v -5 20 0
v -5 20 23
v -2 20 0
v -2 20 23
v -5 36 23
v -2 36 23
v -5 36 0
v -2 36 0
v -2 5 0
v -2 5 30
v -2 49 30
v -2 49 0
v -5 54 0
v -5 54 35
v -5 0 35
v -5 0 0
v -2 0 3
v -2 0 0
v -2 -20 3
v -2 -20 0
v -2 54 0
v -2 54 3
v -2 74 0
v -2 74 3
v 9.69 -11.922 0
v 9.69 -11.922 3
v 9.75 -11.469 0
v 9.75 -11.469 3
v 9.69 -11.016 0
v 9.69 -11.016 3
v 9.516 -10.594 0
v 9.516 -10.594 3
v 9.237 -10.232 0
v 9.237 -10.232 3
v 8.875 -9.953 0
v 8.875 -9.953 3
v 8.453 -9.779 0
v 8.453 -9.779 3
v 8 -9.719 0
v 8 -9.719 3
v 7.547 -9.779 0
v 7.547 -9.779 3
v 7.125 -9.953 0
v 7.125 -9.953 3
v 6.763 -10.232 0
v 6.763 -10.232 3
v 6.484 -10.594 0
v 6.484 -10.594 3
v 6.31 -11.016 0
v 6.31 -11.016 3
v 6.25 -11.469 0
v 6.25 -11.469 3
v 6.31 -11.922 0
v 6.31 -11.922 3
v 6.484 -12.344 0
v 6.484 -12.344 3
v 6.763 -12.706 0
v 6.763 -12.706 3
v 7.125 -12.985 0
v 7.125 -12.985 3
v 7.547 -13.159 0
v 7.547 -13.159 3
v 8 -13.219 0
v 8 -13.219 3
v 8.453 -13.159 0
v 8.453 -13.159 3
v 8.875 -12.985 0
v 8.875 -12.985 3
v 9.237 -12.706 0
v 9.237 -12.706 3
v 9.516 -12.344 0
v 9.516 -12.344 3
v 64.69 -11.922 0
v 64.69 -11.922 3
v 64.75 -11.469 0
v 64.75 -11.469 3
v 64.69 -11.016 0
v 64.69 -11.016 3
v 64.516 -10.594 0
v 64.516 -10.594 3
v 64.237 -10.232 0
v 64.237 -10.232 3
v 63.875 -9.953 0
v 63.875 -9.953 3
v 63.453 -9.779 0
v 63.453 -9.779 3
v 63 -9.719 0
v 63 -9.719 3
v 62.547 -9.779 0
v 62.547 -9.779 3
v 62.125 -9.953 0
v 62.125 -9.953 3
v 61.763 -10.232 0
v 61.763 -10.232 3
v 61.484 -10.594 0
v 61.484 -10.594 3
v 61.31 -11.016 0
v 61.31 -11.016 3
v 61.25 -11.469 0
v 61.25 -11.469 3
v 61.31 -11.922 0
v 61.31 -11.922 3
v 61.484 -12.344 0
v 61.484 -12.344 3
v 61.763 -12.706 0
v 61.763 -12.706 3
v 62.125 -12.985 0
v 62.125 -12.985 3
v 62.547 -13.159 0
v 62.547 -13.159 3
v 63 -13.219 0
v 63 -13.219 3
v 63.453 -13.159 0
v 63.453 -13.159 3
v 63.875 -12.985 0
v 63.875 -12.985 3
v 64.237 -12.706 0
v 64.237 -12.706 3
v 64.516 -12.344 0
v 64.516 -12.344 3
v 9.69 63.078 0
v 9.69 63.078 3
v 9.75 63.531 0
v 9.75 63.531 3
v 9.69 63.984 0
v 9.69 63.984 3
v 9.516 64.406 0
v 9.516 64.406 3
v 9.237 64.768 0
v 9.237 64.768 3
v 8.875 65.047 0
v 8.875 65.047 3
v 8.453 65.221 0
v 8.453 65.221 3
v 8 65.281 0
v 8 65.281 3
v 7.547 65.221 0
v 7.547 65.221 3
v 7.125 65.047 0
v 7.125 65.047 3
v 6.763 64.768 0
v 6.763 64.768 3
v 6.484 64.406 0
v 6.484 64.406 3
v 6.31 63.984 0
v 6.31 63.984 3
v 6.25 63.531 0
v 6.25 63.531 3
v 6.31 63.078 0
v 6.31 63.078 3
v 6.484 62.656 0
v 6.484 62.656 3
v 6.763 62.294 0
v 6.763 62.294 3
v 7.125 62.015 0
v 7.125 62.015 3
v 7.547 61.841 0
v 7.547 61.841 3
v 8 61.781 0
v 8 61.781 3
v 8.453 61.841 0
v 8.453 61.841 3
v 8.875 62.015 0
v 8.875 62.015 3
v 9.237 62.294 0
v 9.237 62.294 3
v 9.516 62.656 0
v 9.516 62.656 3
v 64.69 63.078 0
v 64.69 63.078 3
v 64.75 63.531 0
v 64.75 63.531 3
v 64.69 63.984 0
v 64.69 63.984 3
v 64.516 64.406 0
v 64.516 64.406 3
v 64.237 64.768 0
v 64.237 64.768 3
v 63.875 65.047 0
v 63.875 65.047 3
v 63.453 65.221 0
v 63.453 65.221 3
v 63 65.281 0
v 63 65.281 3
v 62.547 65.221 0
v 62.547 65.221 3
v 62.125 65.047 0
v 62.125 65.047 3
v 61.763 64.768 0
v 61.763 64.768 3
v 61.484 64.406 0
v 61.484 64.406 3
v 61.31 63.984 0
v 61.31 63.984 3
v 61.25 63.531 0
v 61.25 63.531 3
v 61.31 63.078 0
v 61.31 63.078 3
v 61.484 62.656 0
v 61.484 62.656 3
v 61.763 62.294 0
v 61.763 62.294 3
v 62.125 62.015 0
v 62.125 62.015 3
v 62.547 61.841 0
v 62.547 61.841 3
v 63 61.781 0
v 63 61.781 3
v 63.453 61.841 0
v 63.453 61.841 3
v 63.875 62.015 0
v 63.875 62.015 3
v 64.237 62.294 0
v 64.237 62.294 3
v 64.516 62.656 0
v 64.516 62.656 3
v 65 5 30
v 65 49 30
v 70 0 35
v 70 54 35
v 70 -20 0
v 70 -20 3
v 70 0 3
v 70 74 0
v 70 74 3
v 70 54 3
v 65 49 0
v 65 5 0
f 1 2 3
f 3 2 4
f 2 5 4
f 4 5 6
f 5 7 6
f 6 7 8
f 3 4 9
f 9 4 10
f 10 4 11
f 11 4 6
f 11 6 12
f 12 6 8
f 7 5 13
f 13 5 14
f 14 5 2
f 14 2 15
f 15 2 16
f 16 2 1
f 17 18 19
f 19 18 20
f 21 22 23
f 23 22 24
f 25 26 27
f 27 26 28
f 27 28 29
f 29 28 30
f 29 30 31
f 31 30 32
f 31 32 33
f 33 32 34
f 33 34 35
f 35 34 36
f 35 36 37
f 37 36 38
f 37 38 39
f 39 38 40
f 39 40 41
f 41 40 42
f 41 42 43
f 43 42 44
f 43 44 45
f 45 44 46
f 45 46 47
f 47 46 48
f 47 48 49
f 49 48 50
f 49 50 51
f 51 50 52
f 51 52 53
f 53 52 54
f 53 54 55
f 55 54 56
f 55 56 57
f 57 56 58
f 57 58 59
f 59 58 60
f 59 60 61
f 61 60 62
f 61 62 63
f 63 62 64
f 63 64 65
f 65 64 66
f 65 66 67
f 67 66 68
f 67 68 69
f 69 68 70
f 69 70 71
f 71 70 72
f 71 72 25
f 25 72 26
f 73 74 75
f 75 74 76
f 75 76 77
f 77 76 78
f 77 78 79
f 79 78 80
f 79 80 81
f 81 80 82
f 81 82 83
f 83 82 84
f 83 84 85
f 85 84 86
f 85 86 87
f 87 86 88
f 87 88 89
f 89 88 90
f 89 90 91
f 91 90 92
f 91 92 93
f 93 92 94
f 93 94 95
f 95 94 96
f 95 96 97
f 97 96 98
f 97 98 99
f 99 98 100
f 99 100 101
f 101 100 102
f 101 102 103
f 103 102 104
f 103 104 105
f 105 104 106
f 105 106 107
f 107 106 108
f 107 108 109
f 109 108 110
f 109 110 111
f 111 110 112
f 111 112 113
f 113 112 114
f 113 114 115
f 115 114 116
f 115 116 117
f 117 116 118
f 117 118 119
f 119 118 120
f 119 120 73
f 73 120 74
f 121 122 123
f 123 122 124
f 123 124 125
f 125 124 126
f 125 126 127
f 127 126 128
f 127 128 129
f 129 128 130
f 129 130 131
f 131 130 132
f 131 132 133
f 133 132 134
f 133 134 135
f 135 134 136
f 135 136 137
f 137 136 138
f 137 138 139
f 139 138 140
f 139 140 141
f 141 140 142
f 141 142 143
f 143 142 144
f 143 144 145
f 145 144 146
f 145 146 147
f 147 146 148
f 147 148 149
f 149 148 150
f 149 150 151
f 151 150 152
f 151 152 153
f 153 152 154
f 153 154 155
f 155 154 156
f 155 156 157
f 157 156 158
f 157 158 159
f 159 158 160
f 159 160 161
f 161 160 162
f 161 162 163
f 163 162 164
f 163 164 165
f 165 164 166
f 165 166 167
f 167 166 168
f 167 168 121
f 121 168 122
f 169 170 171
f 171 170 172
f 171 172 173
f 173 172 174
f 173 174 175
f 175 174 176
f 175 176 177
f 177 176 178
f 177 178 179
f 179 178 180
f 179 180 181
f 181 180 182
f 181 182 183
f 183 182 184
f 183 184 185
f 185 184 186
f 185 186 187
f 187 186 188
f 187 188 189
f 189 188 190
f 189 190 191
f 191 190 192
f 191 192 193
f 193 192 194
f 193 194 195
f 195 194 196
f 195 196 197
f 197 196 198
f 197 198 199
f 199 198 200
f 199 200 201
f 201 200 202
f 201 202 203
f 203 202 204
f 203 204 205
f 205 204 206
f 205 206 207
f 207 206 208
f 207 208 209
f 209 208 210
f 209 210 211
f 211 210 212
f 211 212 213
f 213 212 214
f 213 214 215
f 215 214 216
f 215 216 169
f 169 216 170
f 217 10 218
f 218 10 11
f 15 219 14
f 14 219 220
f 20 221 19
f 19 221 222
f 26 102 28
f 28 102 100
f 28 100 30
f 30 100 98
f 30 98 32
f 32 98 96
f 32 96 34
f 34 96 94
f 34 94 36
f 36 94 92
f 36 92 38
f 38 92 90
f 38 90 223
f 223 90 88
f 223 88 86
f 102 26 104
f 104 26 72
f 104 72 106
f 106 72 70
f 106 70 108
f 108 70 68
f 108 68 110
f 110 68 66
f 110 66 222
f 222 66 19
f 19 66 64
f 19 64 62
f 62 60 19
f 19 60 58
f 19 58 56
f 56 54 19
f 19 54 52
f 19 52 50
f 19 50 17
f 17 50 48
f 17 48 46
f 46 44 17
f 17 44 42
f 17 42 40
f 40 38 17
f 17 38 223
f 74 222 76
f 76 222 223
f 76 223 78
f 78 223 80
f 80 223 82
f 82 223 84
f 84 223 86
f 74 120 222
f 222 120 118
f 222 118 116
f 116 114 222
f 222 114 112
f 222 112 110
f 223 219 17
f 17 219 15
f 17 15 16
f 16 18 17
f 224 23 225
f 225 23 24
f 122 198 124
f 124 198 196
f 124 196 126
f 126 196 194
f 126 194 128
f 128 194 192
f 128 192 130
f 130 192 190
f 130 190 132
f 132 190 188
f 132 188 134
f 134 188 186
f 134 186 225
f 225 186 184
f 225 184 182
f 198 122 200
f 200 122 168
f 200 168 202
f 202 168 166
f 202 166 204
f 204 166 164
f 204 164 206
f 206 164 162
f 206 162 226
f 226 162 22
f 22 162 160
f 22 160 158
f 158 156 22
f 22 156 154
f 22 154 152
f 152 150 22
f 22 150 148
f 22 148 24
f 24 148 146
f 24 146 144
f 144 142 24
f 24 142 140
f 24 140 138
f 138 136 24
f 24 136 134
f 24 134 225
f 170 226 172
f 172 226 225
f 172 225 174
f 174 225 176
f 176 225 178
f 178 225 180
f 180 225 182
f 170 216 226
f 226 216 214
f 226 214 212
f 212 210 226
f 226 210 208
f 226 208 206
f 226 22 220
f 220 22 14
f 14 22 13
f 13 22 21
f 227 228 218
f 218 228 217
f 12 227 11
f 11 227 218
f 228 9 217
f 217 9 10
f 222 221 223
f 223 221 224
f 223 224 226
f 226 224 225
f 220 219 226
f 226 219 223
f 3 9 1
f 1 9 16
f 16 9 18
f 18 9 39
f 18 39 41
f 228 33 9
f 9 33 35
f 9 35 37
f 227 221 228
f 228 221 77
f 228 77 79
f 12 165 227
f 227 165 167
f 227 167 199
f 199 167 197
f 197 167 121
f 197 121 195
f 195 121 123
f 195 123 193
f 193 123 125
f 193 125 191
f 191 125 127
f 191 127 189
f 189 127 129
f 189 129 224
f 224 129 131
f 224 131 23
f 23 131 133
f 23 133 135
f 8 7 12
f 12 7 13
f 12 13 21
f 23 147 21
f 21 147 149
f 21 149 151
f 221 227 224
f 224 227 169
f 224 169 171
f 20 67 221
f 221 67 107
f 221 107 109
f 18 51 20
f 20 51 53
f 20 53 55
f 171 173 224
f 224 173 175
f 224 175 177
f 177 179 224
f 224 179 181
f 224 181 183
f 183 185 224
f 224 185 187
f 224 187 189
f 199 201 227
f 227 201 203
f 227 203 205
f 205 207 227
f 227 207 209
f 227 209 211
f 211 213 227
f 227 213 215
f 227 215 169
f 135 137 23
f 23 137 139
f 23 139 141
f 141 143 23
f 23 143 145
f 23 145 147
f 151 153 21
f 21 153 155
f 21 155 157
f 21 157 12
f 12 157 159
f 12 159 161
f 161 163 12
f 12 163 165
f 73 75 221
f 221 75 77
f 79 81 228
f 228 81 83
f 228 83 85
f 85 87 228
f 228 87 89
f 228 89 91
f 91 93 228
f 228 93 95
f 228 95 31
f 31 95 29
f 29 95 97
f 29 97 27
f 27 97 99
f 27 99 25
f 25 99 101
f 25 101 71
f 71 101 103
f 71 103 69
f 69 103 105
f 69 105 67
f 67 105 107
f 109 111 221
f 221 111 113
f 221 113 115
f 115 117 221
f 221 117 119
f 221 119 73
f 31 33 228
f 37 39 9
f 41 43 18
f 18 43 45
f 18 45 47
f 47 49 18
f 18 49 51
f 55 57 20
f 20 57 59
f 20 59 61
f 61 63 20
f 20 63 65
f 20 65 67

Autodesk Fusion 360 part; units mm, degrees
sketch "Sketch1" plane through (0, 0, 0) normal (0, 0, 1) x (1, 0, 0)
  line L0 (70, 0) -> (70, 54)
  line L1 (70, 54) -> (0, 54)
  line L2 (0, 54) -> (0, 0)
  line L3 (5, 49) -> (65, 49)
  line L4 (65, 49) -> (65, 5)
  line L5 (65, 5) -> (5, 5)
  line L6 (5, 5) -> (5, 49)
  line L7 (0, 0) -> (70, 0)
  line L8 (0, 54) -> (70, 54)
  line L9 (70, 54) -> (70, 74)
  line L10 (70, 74) -> (0, 74)
  line L11 (0, 74) -> (0, 54)
  line L12 (0, 0) -> (70, 0)
  line L13 (70, 0) -> (70, -20)
  line L14 (70, -20) -> (0, -20)
  line L15 (0, -20) -> (0, 0)
  dimension "d1" = 54
  dimension "d2" = 70
  dimension "d3" = 5
  dimension "d4" = 5
  dimension "d5" = 5
  dimension "d11" = 5
  dimension "d12" = 20
  dimension "d13" = 20
extrude "Extrude1" add sketch "Sketch1" along normal blind 30 contours L0 L1 L2 L7 L8 L12
extrude "Extrude2" add sketch "Sketch1" along normal blind 3 contours L7 L12 L13 L14 L15 | L1 L8 L9 L10 L11
sketch "Sketch3" plane through (0, 0, 30) normal (0, 0, 1) x (-1, 0, 0)
  line L0 (-65, -5) -> (-5, -5)
  line L1 (-5, -5) -> (-5, -49)
  line L2 (-5, -49) -> (-65, -49)
  line L3 (-65, -49) -> (-65, -5)
  line L4 (0, -54) -> (0, 0)
  line L5 (0, 0) -> (-70, 0)
  line L6 (-70, 0) -> (-70, -54)
  line L7 (-70, -54) -> (0, -54)
  line L8 (0, -54) -> (-70, -54)
  line L9 (-70, -54) -> (-70, 0)
  line L10 (-70, 0) -> (0, 0)
  line L11 (0, 0) -> (0, -54)
extrude "Extrude3" add sketch "Sketch3" along normal blind 5 contours L0 L1 L2 L3 | L4 L5 L6 L7 L8 L9 L10 L11
sketch "Sketch4" plane through (0, 0, 3) normal (0, 0, 1) x (-1, 0, 0)
  line L0 (0, -74) -> (0, -54)
  line L1 (0, -54) -> (-70, -54)
  line L2 (-70, -54) -> (-70, -74)
  line L3 (-70, -74) -> (0, -74)
  circle A0 centre (-8, -63.531) radius 1.75
  circle A1 centre (-63, -63.531) radius 1.75
  circle A2 centre (-8, 11.469) radius 1.75
  circle A3 centre (-63, 11.469) radius 1.75
  line L4 (0, -74) -> (0, -54)
  line L5 (-70, -74) -> (0, -74)
  dimension "d18" = 3.5
  dimension "d21" = -55
  dimension "d22" = 75
  dimension "d23" = 8
  dimension "d24" = 10.469
extrude "Extrude4" cut sketch "Sketch4" against normal blind 3 contours A0 | A1 | A2 | A3
sketch "Sketch5" plane through (0, 0, 0) normal (-1, 0, 0) x (0, -1, 0)
  line L0 (-74, 0) -> (20, 0)
  line L1 (20, 0) -> (20, 3)
  line L2 (20, 3) -> (0, 3)
  line L3 (0, 3) -> (0, 35)
  line L4 (0, 35) -> (-54, 35)
  line L5 (-54, 35) -> (-54, 3)
  line L6 (-54, 3) -> (-74, 3)
  line L7 (-74, 3) -> (-74, 0)
  line L8 (-5, 0) -> (-49, 0)
  line L9 (-49, 0) -> (-49, 30)
  line L10 (-49, 30) -> (-5, 30)
  line L11 (-5, 30) -> (-5, 0)
  dimension "d27" = 5
  dimension "d28" = 5
  dimension "d33" = 5
extrude "Extrude5" cut sketch "Sketch5" against normal blind 5 contours L0 L8 L9 L10 L11
extrude "Extrude6" add 1 faces at (0, 34.3333, 33.3333) along direction (-1, 0, 0) blind 2
sketch "Sketch7" plane through (-2, 0, 0) normal (-1, 0, 0) x (0, -1, 0)
  line L0 (-5, 30) -> (-5, 0)
  line L1 (-5, 0) -> (20, 0)
  line L2 (20, 0) -> (20, 3)
  line L3 (20, 3) -> (0, 3)
  line L4 (0, 3) -> (0, 35)
  line L5 (0, 35) -> (-54, 35)
  line L6 (-54, 35) -> (-54, 3)
  line L7 (-54, 3) -> (-74, 3)
  line L8 (-74, 3) -> (-74, 0)
  line L9 (-74, 0) -> (-49, 0)
  line L10 (-49, 0) -> (-49, 30)
  line L11 (-49, 30) -> (-5, 30)
  line L12 (-54, 35) -> (0, 35)
  line L13 (0, 35) -> (0, 0)
  line L14 (0, 0) -> (-54, 0)
  line L15 (-54, 0) -> (-54, 35)
extrude "Extrude7" add sketch "Sketch7" along normal blind 3 contours L0 L1 L4 L5 L6 L9 L10 L11 L12 L13 L14 L15 | L0 L10 L11 L14
sketch "Sketch8" plane through (-5, 0, 0) normal (-1, 0, 0) x (0, -1, 0)
  line L0 (-54, 0) -> (0, 0)
  line L1 (0, 0) -> (0, 35)
  line L2 (0, 35) -> (-54, 35)
  line L3 (-54, 35) -> (-54, 0)
  line L4 (-36, 0) -> (-20, 0)
  line L5 (-20, 0) -> (-20, 23)
  line L6 (-20, 23) -> (-36, 23)
  line L7 (-36, 23) -> (-36, 0)
  line L8 (-74, 3) -> (-74, 0)
  line L9 (20, 0) -> (20, 3)
  dimension "d39" = 38
  dimension "d40" = 40
  dimension "d41" = 23
extrude "Extrude8" cut sketch "Sketch8" against normal blind 3 contours L0 L4 L5 L6 L7
